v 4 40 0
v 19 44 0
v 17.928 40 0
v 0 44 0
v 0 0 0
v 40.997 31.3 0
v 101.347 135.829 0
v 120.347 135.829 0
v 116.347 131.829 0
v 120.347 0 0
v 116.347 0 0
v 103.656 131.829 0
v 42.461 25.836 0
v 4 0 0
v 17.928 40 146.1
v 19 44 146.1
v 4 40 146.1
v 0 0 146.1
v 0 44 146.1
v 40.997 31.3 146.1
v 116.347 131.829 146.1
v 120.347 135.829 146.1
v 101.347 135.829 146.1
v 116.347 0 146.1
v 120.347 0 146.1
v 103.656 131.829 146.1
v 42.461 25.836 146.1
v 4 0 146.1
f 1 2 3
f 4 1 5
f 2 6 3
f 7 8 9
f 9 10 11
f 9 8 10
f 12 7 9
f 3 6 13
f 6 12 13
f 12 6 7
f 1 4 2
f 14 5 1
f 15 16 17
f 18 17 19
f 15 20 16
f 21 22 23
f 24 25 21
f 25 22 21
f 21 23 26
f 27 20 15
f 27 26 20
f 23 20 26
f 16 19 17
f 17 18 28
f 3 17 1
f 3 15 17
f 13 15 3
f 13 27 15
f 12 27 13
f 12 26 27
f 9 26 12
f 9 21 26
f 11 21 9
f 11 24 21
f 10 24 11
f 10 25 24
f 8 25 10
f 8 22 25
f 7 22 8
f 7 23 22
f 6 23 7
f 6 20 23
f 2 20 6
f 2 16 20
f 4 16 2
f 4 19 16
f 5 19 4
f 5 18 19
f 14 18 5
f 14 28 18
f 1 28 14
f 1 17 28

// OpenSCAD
lipW = 15;
frontH = 40;
rot = 60;
wall = 4;

pW = 146.1;
pD = 120.7;
pH = 25.4;

linear_extrude(height = pW) union() {
    // front
    difference() {
        square([wall + lipW, frontH + wall]);
        translate([wall, -1])
            square([lipW + 1, frontH + 1]);
    }
    
    
    // check
    translate([lipW + wall, frontH + wall])
    translate([ -1 * sin(90 - rot) * wall
              , -1 * sin(rot) * wall
              ])
    translate([ sin(rot) * (pH + wall)
              , -1 * sin(90 - rot) * (pH + wall)
              ])
    rotate(rot) difference() {
        square([pD + wall, pH + wall]);
        translate([wall, wall])
            square([pD + 1, pH + 1]);
    }
    
    // back
    backH = frontH + wall +
            sin(rot) * (pD + wall) +
            sin(90 - rot) * wall -
            sin(90 - rot) * (pH + wall) -
            sin(rot) * wall;
    translate([ wall + lipW +
                sin(rot) * (pH + wall) -
                sin(90 - rot) * wall +
                sin(90 - rot) * (pD + wall) -
                sin(rot) * wall
              , 0])
    difference() {
        square([lipW + wall, backH]);
        translate([-1, -1])
            square([lipW + 1, backH - wall + 1]);
    }
}
